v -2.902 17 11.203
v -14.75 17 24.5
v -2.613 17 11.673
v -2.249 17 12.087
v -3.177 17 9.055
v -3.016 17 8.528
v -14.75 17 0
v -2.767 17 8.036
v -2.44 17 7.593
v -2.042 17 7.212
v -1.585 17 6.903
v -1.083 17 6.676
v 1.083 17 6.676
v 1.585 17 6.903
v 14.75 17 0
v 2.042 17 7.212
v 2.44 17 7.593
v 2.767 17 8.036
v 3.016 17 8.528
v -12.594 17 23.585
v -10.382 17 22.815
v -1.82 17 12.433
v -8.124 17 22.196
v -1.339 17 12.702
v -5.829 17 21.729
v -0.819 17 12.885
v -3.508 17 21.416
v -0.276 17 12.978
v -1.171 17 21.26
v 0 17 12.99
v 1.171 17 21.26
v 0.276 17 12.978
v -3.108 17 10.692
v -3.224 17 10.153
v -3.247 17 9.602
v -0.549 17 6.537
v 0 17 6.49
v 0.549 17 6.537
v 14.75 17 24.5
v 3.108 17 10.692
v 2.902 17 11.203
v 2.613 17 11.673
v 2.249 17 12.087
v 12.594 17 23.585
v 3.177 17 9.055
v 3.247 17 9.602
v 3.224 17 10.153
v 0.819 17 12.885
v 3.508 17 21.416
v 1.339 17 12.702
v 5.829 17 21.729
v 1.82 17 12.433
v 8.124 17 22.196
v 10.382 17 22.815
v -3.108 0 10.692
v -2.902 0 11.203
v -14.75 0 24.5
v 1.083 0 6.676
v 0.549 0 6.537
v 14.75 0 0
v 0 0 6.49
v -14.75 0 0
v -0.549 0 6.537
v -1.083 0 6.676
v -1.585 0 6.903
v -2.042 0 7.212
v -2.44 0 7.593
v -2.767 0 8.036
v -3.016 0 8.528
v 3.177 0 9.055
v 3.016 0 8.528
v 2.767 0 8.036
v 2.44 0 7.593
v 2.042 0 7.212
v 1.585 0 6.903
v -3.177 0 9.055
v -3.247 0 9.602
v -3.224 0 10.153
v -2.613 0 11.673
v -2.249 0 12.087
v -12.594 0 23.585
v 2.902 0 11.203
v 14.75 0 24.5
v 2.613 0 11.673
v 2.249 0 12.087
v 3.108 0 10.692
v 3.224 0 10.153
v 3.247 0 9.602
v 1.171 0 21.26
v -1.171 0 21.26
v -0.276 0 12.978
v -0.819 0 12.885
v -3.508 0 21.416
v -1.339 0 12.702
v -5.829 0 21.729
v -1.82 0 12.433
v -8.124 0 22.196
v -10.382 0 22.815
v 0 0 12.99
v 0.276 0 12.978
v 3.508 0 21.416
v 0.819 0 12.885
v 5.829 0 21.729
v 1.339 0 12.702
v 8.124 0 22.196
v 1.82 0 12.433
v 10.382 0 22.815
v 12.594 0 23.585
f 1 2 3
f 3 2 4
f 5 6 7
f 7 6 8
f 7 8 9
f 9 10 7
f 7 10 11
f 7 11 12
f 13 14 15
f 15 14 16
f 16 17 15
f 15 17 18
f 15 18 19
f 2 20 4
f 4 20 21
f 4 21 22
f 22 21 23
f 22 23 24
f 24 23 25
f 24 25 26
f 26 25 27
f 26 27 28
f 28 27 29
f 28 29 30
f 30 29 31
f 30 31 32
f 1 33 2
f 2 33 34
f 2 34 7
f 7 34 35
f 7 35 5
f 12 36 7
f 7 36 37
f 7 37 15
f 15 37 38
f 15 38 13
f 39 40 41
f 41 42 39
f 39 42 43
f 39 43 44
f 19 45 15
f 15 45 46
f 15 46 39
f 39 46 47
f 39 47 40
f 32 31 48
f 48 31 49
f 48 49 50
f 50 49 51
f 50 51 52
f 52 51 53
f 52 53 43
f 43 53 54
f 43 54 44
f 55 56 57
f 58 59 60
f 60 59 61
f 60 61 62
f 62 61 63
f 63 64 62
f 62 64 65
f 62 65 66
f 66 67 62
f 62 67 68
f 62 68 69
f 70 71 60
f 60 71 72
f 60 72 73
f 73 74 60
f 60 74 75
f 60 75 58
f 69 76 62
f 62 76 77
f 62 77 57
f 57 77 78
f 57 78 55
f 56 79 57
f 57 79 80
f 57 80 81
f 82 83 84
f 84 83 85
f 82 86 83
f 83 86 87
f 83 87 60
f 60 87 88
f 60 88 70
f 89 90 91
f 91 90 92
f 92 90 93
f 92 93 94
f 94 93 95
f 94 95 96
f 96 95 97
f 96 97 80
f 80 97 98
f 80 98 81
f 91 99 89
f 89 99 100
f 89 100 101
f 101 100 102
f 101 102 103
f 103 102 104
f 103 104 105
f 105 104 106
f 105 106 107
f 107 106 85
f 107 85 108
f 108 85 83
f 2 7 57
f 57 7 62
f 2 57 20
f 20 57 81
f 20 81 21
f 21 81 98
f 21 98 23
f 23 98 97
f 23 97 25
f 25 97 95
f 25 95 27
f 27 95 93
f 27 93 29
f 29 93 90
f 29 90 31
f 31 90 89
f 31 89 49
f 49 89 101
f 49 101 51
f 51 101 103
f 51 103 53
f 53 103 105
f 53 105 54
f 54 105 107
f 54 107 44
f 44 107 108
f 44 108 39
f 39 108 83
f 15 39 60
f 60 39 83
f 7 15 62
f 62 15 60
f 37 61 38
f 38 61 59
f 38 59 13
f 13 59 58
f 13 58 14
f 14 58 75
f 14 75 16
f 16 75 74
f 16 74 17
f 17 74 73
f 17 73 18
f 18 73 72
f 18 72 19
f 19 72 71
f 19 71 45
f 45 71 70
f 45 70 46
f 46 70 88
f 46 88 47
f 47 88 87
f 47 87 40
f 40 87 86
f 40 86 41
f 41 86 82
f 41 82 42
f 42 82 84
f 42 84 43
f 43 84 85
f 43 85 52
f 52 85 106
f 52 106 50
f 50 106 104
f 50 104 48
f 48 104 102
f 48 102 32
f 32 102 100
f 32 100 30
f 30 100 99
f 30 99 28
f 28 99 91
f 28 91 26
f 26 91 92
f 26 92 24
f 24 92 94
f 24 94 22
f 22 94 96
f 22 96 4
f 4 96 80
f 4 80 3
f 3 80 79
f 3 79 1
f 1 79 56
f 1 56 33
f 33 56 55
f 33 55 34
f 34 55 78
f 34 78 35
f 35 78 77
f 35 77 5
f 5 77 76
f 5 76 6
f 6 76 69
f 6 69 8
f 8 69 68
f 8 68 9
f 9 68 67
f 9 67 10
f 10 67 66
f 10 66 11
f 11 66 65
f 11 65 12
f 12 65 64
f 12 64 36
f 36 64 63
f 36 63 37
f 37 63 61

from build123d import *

# Parameters (mm, degrees)
ESQUISSE1_R        = 3.25
BOSS_EXTRU_1_DEPTH = 17


with BuildPart() as part:
    # Esquisse1 → Boss.-Extru.1 (new body)
    with BuildSketch(Plane(origin=(0, 0, 0), x_dir=(1, 0, 0), z_dir=(0, 1, 0))):
        with BuildLine():
            Line((-14.75, 0), (14.75, 0))
            Line((14.75, 0), (14.75, -24.5))
            ThreePointArc((14.75, -24.5), (0, -21.240155954), (-14.75, -24.5))
            Line((-14.75, -24.5), (-14.75, 0))
        make_face()
        with Locations(Location((0, -9.740155954, 0), (0, 0, 270))):
            Circle(ESQUISSE1_R, mode=Mode.SUBTRACT)
    extrude(amount=BOSS_EXTRU_1_DEPTH)


solid = part.part
